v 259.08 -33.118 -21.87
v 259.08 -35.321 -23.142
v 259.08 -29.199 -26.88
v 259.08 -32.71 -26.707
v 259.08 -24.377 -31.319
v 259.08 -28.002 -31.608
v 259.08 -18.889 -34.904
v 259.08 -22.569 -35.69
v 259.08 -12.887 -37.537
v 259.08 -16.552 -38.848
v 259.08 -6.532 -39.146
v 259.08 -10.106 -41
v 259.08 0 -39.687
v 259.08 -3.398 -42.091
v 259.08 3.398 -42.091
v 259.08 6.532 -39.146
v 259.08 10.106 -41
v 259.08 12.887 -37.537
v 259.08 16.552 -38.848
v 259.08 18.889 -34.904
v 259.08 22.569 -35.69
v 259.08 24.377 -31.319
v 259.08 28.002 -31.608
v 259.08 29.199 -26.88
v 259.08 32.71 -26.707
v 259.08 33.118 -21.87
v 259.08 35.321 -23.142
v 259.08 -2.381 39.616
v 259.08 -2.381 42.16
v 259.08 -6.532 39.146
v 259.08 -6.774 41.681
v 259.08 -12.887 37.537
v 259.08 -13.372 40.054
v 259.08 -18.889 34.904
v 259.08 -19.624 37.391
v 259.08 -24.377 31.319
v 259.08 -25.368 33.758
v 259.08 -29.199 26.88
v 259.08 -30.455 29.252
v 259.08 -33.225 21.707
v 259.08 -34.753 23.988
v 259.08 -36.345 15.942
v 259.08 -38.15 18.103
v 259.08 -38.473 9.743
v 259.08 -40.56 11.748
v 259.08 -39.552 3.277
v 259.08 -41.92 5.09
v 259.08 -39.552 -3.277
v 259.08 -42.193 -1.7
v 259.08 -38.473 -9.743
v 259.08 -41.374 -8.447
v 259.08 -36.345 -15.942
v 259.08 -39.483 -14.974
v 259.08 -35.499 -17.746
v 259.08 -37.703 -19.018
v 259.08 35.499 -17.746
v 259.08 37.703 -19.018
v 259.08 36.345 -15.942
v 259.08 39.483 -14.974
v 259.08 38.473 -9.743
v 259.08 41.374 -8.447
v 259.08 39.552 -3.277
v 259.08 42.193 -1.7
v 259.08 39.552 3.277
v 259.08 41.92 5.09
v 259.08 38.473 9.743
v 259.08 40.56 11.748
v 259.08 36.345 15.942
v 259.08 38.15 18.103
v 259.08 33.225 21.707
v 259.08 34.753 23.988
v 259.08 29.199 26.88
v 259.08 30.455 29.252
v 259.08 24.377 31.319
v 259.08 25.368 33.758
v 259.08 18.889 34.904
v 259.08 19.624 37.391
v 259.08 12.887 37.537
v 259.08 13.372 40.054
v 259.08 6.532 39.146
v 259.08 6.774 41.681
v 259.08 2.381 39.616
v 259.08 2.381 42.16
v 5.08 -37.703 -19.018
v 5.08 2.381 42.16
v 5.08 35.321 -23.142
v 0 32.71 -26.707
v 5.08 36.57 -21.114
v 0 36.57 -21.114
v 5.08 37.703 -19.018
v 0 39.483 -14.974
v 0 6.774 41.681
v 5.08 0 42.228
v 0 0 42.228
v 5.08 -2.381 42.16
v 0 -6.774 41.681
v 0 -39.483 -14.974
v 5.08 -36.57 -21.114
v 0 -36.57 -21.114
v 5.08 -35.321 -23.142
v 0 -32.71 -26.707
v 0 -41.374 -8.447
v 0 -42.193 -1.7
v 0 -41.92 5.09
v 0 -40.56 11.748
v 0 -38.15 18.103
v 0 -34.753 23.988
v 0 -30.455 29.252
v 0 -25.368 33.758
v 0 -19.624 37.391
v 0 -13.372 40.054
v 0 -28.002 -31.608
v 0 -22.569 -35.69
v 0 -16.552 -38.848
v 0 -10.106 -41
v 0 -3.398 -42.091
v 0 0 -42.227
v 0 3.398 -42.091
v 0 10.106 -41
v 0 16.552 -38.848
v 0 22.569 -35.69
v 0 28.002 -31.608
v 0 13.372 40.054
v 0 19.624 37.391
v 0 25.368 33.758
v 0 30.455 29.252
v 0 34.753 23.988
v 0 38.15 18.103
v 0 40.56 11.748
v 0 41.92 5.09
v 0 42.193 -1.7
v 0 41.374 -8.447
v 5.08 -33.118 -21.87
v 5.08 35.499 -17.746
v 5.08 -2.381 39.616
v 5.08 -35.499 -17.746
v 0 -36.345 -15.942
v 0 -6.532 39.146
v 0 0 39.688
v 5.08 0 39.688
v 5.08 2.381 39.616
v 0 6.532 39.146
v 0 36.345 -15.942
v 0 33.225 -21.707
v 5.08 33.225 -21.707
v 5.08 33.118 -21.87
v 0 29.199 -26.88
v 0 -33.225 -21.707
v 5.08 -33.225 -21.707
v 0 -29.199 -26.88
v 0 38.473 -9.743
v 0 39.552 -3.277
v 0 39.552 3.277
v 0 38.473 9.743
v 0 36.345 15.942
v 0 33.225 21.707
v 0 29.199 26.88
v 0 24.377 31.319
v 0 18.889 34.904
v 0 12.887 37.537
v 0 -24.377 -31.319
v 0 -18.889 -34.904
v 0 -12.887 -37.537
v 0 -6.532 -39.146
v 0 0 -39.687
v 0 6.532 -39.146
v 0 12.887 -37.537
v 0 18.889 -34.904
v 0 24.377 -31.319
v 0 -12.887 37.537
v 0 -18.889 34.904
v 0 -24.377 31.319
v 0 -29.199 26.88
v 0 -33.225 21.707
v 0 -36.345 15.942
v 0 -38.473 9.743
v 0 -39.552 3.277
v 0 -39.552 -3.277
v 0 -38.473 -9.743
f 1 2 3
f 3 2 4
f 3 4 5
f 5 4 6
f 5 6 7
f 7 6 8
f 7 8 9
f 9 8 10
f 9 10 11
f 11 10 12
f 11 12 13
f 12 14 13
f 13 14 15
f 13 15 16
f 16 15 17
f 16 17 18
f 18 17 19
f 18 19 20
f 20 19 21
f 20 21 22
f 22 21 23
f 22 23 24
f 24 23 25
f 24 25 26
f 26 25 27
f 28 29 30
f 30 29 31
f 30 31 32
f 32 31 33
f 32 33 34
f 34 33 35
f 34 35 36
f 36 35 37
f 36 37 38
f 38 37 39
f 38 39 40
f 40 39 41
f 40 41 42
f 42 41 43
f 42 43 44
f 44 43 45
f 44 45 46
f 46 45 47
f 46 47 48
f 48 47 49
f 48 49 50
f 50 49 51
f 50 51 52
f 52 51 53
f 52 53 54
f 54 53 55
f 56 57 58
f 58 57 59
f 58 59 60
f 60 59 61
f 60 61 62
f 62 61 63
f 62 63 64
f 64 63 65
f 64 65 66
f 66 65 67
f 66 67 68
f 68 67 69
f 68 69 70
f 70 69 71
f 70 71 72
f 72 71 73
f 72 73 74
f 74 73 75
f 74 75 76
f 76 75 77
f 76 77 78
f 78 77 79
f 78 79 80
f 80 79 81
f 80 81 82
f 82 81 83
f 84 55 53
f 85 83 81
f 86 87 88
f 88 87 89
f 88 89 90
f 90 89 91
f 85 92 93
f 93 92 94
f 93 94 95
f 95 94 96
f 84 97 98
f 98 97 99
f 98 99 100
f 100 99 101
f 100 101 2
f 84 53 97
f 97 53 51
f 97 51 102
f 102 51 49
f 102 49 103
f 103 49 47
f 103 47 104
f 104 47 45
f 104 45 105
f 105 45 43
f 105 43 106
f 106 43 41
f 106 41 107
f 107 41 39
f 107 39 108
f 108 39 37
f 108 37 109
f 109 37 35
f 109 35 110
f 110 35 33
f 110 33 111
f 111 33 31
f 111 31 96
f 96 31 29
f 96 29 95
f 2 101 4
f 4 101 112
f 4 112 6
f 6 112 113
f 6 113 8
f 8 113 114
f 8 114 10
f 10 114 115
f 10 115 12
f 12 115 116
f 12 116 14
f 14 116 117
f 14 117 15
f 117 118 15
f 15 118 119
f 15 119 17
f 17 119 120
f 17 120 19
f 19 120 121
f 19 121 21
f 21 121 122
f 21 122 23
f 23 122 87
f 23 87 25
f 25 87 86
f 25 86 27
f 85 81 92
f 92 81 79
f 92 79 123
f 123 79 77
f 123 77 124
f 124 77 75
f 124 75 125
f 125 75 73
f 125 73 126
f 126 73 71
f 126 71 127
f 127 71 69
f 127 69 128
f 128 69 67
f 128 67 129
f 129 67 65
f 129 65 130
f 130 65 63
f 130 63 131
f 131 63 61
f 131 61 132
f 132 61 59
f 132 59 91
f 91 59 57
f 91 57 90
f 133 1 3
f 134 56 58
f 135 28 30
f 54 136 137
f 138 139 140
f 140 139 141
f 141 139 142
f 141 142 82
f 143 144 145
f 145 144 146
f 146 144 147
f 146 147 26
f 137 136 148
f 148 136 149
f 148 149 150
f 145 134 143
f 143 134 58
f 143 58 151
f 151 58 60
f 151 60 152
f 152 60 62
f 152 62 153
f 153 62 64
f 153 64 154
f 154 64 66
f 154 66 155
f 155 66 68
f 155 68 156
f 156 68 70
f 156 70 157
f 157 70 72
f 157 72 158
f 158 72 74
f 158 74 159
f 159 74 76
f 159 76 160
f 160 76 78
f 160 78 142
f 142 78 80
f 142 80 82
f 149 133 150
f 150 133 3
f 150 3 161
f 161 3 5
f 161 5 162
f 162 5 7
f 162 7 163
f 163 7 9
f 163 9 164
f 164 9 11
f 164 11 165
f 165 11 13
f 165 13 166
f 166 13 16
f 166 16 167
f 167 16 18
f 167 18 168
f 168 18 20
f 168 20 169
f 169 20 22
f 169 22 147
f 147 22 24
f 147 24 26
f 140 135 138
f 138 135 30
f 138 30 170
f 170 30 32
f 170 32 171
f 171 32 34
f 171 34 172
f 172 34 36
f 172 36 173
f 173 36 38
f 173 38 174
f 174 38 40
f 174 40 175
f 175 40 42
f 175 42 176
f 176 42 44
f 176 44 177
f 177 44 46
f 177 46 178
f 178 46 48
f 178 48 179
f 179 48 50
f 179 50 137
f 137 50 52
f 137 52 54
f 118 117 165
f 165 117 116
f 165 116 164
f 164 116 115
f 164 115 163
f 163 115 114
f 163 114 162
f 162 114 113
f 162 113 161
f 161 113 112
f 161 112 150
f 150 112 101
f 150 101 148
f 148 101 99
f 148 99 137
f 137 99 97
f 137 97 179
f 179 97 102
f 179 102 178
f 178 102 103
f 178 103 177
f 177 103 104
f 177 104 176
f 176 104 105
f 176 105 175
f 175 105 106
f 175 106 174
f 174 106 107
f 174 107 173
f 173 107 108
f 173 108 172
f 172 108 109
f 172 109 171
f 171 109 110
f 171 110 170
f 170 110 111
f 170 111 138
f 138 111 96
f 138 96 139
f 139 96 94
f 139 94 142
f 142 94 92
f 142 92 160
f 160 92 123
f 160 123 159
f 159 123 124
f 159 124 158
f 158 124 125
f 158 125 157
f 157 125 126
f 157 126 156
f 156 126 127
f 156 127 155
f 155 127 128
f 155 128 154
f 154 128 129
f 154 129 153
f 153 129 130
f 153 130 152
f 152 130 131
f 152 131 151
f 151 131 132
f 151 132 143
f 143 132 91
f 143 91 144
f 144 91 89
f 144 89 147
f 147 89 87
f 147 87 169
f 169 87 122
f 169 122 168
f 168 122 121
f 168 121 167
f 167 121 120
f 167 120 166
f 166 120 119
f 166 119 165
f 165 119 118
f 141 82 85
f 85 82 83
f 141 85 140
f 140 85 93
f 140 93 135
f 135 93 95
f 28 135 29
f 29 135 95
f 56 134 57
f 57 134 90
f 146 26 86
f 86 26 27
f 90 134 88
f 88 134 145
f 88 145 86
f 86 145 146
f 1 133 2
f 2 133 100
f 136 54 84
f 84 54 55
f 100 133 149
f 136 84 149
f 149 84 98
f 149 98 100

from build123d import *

# Parameters (mm, degrees)
SKETCH1_R           = 42.2275
SKETCH1_R_2         = 39.6875
BOSS_EXTRUDE1_DEPTH = 259.08
SKETCH2_W           = 4.7625
SKETCH2_H           = 254
CUT_EXTRUDE1_DEPTH  = 266.873597622
CIRPATTERN1_COUNT   = 3


with BuildPart() as part:
    # Sketch1 → Boss-Extrude1 (new body)
    with BuildSketch(Plane.YZ):
        with Locations(Location((0, 0, 0), (0, 0, 270))):
            Circle(SKETCH1_R)
        with Locations(Location((0, 0, 0), (0, 0, 270))):
            Circle(SKETCH1_R_2, mode=Mode.SUBTRACT)
    extrude(amount=BOSS_EXTRUDE1_DEPTH)

    # Sketch2 → Cut-Extrude1 (cut, through all)
    with BuildSketch(Plane(origin=(0, 0, 0), x_dir=(0, 1, 0), z_dir=(0, 0, 1))):
        with Locations((0, -132.08)):
            Rectangle(SKETCH2_W, SKETCH2_H)
    cut_extrude1 = extrude(amount=CUT_EXTRUDE1_DEPTH, mode=Mode.SUBTRACT)

    # CirPattern1: Cut-Extrude1 ×3 about axis
    cirpattern1_axis = Axis((0, 0, 0), (1, 0, 0))
    for i in range(1, CIRPATTERN1_COUNT):
        add(cut_extrude1.rotate(cirpattern1_axis, i * 360 / CIRPATTERN1_COUNT), mode=Mode.SUBTRACT)


solid = part.part
